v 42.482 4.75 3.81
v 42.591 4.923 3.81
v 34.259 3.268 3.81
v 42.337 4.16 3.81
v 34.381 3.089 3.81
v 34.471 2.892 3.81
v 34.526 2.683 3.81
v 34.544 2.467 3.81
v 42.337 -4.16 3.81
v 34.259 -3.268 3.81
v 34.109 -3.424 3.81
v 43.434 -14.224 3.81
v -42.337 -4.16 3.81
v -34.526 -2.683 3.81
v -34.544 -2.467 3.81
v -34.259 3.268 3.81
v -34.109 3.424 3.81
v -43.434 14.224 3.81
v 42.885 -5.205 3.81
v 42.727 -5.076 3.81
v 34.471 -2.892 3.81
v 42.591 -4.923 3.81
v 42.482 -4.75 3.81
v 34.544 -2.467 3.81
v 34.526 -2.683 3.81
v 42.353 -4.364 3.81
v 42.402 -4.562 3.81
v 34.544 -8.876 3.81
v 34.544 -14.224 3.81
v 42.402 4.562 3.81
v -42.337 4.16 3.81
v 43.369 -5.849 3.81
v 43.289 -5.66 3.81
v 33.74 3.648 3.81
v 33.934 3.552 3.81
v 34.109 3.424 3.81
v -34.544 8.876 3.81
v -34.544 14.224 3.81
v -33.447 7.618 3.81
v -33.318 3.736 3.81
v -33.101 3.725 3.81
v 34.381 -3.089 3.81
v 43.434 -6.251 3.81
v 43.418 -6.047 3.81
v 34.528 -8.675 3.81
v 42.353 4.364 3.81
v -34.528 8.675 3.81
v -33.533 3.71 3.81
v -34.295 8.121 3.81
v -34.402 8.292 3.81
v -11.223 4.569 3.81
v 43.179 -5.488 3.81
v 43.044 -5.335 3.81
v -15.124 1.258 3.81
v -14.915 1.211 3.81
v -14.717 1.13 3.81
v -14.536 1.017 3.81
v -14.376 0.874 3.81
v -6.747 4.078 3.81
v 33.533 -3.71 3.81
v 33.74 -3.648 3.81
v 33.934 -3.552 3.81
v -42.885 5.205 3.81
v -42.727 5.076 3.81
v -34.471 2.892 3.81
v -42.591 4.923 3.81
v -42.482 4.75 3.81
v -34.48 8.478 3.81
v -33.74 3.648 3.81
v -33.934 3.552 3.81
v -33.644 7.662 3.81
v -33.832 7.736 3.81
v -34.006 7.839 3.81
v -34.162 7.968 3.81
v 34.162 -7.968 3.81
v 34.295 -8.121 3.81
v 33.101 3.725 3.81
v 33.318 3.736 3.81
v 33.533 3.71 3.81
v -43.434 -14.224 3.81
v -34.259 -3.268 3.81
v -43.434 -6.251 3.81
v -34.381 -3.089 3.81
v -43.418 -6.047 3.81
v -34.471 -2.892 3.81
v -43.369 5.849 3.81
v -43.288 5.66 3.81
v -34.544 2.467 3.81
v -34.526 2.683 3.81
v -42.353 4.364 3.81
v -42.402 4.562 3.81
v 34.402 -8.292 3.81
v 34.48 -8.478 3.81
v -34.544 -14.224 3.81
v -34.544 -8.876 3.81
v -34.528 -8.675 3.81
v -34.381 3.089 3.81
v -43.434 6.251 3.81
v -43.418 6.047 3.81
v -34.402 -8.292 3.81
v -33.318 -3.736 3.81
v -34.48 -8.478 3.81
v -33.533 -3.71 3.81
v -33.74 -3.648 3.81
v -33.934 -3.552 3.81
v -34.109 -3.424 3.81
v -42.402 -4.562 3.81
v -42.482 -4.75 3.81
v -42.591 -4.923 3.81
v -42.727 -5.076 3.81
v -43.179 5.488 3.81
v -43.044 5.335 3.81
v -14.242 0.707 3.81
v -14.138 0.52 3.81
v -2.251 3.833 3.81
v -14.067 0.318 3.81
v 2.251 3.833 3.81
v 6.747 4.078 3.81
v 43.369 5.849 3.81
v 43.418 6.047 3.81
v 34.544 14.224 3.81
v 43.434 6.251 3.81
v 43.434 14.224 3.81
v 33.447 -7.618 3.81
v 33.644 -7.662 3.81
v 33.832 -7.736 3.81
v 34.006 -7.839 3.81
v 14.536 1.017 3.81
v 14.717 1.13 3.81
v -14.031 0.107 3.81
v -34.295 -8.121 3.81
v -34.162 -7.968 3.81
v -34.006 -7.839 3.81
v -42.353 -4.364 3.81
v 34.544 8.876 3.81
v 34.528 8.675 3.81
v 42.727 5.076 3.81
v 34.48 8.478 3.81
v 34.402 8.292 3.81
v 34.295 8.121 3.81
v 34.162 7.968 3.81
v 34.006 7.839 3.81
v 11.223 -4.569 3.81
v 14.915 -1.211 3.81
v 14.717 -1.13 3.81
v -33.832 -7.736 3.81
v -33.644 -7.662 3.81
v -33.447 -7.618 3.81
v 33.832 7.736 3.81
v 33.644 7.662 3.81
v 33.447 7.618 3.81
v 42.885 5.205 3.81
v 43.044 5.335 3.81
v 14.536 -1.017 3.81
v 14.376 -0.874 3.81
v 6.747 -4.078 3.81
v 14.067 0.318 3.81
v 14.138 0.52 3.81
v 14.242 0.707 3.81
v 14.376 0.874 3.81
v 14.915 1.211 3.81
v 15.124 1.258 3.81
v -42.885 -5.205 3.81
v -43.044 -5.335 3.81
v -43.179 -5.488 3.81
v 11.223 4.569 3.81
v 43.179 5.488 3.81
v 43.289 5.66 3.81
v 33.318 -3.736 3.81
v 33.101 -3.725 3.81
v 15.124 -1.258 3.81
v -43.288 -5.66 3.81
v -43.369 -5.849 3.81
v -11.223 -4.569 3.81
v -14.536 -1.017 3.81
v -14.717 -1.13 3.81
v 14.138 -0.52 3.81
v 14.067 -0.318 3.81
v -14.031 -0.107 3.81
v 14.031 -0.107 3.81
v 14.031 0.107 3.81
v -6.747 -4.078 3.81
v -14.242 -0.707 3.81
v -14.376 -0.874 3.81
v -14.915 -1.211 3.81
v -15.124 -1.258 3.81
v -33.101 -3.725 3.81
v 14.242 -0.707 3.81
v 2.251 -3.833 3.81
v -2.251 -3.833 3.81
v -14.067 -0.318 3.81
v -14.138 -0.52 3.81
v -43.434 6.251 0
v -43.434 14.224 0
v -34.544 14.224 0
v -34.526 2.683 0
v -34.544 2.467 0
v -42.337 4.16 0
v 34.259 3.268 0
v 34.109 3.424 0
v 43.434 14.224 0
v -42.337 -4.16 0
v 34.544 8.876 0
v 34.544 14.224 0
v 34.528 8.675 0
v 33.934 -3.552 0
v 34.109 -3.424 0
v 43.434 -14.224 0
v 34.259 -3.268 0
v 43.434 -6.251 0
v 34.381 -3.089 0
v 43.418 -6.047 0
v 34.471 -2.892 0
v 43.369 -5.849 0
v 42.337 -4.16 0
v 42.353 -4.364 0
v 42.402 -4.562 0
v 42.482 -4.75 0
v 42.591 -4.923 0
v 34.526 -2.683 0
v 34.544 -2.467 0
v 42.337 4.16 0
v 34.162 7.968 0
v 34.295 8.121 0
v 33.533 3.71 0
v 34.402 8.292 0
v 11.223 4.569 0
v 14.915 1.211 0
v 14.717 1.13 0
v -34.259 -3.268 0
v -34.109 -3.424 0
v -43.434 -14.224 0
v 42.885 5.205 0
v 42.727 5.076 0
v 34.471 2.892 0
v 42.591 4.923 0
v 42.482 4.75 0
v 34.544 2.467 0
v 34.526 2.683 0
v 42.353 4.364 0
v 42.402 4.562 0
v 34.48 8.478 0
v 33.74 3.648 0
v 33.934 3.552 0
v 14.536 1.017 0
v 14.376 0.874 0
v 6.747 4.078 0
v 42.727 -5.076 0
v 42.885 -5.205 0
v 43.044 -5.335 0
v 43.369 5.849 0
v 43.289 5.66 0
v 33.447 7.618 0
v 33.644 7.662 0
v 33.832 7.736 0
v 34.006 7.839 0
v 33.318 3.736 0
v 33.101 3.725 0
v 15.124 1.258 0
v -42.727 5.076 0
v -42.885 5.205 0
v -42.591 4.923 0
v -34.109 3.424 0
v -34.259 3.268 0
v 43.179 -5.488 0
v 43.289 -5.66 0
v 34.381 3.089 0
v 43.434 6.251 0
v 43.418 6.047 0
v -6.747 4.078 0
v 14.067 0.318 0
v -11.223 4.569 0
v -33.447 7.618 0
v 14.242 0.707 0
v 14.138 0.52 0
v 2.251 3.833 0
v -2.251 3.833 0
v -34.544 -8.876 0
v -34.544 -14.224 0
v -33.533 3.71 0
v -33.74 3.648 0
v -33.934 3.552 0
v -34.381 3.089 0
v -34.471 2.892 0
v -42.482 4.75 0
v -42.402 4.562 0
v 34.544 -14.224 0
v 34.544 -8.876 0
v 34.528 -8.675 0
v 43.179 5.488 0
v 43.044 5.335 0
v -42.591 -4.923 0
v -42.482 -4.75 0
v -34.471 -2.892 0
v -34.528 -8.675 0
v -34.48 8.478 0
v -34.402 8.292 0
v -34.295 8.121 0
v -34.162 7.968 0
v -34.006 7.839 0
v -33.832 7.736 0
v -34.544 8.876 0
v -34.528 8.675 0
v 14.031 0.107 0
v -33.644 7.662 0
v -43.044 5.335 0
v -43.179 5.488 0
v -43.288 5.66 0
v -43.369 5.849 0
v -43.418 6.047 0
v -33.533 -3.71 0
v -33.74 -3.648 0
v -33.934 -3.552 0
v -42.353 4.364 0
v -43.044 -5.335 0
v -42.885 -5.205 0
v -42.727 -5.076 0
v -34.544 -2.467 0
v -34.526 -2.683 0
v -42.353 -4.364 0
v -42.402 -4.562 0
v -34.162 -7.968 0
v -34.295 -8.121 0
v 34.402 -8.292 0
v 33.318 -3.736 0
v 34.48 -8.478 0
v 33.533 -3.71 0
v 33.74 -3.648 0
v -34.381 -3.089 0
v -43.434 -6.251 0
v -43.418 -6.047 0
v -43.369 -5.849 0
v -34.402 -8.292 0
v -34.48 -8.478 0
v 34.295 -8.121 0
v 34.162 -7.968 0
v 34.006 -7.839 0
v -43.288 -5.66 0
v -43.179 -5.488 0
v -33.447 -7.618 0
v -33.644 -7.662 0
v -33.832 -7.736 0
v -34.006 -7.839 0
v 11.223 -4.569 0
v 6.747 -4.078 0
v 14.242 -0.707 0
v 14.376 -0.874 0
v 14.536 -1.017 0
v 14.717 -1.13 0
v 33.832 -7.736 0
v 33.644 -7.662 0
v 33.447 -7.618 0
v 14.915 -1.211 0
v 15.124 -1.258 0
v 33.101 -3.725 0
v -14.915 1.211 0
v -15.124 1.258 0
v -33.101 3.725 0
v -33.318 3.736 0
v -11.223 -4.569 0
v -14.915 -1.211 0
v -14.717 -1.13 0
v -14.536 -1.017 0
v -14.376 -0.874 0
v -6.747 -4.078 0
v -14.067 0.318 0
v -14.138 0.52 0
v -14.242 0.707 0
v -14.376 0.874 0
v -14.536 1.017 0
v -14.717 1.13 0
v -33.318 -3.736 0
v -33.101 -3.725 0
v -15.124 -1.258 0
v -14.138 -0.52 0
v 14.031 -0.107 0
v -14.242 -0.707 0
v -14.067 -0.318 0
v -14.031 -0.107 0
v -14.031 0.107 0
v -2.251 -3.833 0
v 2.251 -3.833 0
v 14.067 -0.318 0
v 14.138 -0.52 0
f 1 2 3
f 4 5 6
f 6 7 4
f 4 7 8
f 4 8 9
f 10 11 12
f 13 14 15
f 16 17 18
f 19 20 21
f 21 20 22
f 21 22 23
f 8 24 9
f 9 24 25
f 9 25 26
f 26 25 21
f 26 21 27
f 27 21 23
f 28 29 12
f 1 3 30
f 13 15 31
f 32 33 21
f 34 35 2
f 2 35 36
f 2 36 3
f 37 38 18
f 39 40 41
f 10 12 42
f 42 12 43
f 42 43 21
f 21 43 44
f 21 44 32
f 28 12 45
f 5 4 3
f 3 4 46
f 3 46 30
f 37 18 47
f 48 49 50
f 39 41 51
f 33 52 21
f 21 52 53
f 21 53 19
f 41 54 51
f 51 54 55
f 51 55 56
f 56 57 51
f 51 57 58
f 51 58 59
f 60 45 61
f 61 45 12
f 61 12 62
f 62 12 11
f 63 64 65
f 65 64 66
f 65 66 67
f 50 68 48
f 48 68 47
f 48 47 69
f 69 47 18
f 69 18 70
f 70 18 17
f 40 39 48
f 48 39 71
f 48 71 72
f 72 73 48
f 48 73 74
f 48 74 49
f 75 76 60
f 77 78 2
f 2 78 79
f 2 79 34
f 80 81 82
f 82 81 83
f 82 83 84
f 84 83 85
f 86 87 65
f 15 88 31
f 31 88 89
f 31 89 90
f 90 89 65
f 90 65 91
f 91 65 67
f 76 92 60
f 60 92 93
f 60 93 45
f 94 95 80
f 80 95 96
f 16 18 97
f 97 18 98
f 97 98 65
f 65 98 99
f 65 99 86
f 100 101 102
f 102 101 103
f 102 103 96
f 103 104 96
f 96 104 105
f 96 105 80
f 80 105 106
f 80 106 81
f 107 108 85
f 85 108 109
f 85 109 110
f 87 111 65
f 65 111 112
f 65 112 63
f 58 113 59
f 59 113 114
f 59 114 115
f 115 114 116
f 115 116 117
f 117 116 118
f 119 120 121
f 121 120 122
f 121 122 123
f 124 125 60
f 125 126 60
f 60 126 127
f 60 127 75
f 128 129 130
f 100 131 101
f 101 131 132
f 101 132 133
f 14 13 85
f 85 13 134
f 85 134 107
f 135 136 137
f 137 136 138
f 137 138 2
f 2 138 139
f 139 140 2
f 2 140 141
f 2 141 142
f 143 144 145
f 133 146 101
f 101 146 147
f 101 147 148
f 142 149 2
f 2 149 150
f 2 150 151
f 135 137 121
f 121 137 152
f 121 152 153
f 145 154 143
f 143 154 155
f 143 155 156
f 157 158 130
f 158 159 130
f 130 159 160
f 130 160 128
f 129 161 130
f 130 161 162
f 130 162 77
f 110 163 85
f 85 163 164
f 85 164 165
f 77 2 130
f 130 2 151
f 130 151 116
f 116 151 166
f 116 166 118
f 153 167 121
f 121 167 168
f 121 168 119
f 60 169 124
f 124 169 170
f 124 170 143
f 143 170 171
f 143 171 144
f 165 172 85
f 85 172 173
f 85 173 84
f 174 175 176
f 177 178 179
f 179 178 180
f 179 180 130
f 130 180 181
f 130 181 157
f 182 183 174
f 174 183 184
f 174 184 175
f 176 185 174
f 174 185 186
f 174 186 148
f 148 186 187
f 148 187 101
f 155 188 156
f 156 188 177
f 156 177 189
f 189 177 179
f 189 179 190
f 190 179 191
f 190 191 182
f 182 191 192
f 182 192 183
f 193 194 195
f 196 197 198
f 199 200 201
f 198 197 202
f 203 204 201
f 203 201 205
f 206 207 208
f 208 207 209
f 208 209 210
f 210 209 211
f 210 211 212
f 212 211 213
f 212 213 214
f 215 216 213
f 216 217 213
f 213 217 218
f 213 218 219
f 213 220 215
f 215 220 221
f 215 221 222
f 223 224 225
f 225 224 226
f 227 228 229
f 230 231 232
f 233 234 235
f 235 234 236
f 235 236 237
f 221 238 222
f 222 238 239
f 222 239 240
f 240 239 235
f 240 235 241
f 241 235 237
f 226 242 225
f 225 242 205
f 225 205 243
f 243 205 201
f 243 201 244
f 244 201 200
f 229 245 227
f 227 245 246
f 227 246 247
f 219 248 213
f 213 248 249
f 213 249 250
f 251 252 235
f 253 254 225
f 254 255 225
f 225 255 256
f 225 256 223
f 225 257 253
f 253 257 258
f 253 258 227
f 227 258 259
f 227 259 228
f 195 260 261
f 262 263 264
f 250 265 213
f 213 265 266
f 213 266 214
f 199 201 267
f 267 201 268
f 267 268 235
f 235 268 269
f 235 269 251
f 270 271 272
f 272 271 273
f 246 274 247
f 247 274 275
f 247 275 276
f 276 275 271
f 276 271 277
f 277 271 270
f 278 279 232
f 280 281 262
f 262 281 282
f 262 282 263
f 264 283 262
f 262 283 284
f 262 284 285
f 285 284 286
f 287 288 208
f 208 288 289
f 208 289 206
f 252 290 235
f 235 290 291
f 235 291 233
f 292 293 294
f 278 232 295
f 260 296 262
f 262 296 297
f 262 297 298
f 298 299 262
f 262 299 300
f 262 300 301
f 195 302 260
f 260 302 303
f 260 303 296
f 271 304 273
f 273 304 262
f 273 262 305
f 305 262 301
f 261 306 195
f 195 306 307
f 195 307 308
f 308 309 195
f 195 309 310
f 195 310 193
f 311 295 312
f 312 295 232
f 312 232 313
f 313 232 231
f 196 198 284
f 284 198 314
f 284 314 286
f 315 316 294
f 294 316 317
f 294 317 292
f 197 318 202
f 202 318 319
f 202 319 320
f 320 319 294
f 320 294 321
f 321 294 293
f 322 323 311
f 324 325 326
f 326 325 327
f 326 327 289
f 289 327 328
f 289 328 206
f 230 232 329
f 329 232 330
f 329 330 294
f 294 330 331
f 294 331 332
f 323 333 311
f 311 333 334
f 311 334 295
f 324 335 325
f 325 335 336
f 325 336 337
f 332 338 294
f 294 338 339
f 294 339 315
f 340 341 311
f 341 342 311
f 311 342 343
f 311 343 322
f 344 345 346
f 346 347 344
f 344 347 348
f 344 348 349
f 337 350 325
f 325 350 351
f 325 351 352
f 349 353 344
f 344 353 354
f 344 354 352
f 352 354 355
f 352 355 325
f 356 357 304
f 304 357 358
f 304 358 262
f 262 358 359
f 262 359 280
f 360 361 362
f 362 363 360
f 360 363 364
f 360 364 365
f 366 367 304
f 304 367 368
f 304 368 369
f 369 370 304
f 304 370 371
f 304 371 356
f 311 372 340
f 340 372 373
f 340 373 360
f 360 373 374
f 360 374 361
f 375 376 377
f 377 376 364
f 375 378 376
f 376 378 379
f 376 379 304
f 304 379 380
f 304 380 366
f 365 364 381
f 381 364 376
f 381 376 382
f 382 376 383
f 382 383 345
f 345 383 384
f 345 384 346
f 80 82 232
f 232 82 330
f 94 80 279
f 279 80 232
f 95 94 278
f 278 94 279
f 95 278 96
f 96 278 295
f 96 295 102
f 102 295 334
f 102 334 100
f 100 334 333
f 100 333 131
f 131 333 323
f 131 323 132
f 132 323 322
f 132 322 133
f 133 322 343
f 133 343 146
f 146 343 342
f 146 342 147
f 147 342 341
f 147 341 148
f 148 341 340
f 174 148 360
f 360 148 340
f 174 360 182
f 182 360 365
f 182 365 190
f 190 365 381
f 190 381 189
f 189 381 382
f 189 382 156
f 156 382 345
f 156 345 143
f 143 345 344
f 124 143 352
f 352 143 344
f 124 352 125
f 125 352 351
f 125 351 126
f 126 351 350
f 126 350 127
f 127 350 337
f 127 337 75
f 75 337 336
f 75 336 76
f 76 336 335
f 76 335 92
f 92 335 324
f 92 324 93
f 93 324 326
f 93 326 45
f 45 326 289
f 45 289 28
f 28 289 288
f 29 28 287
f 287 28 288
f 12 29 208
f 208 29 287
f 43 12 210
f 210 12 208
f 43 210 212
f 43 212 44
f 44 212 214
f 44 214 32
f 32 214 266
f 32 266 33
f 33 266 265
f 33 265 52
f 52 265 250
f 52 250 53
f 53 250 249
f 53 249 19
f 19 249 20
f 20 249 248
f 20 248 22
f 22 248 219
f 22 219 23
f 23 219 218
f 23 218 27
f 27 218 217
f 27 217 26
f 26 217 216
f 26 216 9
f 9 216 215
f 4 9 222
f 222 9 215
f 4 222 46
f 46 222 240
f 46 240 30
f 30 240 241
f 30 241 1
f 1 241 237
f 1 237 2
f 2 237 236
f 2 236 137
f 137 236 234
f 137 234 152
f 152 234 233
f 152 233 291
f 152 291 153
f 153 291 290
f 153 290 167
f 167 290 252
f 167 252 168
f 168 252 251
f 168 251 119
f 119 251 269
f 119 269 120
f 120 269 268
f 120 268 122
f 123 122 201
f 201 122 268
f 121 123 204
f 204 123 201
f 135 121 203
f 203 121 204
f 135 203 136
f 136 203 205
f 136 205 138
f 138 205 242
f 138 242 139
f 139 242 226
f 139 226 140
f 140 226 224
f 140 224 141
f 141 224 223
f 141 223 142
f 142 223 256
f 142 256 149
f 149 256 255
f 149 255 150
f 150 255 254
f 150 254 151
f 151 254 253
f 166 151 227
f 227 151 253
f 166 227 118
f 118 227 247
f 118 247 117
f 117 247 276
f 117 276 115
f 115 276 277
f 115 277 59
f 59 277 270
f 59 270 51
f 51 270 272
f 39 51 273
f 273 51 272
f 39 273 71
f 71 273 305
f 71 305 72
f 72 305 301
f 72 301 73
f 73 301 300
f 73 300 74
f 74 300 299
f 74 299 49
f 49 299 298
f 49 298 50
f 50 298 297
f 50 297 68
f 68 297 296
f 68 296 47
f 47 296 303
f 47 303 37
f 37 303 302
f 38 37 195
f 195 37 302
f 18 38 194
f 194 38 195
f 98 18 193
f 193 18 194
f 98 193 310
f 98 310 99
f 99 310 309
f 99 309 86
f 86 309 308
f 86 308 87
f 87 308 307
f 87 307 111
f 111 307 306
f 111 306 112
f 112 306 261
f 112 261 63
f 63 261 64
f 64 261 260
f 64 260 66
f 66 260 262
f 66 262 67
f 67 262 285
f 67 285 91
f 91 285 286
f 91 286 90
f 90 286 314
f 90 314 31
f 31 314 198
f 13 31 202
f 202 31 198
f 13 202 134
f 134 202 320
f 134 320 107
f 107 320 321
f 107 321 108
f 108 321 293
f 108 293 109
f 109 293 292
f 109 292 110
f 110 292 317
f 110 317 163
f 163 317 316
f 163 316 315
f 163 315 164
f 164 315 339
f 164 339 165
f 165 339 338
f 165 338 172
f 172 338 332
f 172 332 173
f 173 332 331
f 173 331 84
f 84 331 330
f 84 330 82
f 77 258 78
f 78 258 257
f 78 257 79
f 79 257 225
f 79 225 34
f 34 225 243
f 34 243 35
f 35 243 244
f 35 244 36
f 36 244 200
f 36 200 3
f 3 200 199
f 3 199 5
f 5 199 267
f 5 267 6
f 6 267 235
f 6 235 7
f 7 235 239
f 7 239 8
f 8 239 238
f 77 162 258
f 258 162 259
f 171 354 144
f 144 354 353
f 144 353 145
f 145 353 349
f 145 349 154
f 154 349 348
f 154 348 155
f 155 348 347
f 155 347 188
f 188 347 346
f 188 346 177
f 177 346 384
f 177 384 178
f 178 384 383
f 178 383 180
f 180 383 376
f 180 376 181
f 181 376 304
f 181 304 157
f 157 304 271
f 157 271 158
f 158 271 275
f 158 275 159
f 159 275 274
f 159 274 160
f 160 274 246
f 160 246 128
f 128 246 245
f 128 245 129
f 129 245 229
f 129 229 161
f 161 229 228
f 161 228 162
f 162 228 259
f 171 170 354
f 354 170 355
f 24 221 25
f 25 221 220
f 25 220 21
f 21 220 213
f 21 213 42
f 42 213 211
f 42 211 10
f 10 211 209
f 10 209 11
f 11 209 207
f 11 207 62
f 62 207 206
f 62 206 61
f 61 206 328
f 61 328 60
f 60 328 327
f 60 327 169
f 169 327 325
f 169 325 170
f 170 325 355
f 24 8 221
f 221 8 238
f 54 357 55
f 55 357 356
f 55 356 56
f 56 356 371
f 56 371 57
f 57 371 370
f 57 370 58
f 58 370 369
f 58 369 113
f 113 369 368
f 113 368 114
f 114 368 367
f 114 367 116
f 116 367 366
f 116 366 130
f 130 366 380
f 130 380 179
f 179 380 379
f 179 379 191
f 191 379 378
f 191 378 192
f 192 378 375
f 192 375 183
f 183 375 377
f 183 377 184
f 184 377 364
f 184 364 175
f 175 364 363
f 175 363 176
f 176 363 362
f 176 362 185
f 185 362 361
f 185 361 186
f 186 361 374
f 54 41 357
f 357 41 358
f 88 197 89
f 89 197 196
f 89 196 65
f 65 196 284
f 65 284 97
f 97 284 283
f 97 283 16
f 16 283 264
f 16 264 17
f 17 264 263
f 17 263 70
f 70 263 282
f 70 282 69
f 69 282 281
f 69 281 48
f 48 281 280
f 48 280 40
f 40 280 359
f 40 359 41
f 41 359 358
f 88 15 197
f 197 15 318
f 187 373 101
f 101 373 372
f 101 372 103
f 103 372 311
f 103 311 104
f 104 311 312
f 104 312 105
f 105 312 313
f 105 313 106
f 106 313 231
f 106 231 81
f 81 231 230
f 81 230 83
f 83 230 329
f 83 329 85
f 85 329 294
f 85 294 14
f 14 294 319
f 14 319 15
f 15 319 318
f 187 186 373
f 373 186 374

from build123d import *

# Parameters (mm, degrees)
BOSS_EXTRUDE1_DEPTH = 3.81


with BuildPart() as part:
    # Sketch1 → Boss-Extrude1 (new body)
    with BuildSketch(Plane.XY):
        with BuildLine():
            Line((-43.434, -9.779), (-43.434, -14.224))
            Line((-43.434, -14.224), (-34.544, -14.224))
            Line((-34.544, -14.224), (-34.544, -9.779))
            Line((-34.544, -9.779), (-34.544, -8.876475723))
            ThreePointArc((-34.544, -8.876475723), (-34.231125677, -8.041724001), (-33.446660728, -7.618267365))
            Line((-33.446660728, -7.618267365), (-11.222947321, -4.568563784))
            ThreePointArc((-11.222947321, -4.568563784), (0, -3.802107076), (11.222947321, -4.568563784))
            Line((11.222947321, -4.568563784), (33.446660728, -7.618267365))
            ThreePointArc((33.446660728, -7.618267365), (34.231125677, -8.041724001), (34.544, -8.876475723))
            Line((34.544, -8.876475723), (34.544, -9.779))
            Line((34.544, -9.779), (34.544, -14.224))
            Line((34.544, -14.224), (43.434, -14.224))
            Line((43.434, -14.224), (43.434, -9.779))
            Line((43.434, -9.779), (43.434, -6.250721328))
            ThreePointArc((43.434, -6.250721328), (43.288497568, -5.660462724), (42.885330364, -5.205454612))
            ThreePointArc((42.885330364, -5.205454612), (42.48216316, -4.7504465), (42.336660728, -4.160187897))
            Line((42.336660728, -4.160187897), (42.336660728, 4.160187897))
            ThreePointArc((42.336660728, 4.160187897), (42.48216316, 4.7504465), (42.885330364, 5.205454612))
            ThreePointArc((42.885330364, 5.205454612), (43.288497568, 5.660462724), (43.434, 6.250721328))
            Line((43.434, 6.250721328), (43.434, 9.779))
            Line((43.434, 9.779), (43.434, 14.224))
            Line((43.434, 14.224), (34.544, 14.224))
            Line((34.544, 14.224), (34.544, 9.779))
            Line((34.544, 9.779), (34.544, 8.876475723))
            ThreePointArc((34.544, 8.876475723), (34.231125677, 8.041724001), (33.446660728, 7.618267365))
            Line((33.446660728, 7.618267365), (11.222947321, 4.568563784))
            ThreePointArc((11.222947321, 4.568563784), (0, 3.802107076), (-11.222947321, 4.568563784))
            Line((-11.222947321, 4.568563784), (-33.446660728, 7.618267365))
            ThreePointArc((-33.446660728, 7.618267365), (-34.231125677, 8.041724001), (-34.544, 8.876475723))
            Line((-34.544, 8.876475723), (-34.544, 9.779))
            Line((-34.544, 9.779), (-34.544, 14.224))
            Line((-34.544, 14.224), (-43.434, 14.224))
            Line((-43.434, 14.224), (-43.434, 9.779))
            Line((-43.434, 9.779), (-43.434, 6.250721328))
            ThreePointArc((-43.434, 6.250721328), (-43.288497568, 5.660462724), (-42.885330364, 5.205454612))
            ThreePointArc((-42.885330364, 5.205454612), (-42.48216316, 4.7504465), (-42.336660728, 4.160187897))
            Line((-42.336660728, 4.160187897), (-42.336660728, -4.160187897))
            ThreePointArc((-42.336660728, -4.160187897), (-42.48216316, -4.7504465), (-42.885330364, -5.205454612))
            ThreePointArc((-42.885330364, -5.205454612), (-43.288497568, -5.660462724), (-43.434, -6.250721328))
            Line((-43.434, -6.250721328), (-43.434, -9.779))
        make_face()
        with BuildLine():
            Line((-33.101339272, -3.725173331), (-15.12414212, -1.258208358))
            ThreePointArc((-15.12414212, -1.258208358), (-14.026802848, 0), (-15.12414212, 1.258208358))
            Line((-15.12414212, 1.258208358), (-33.101339272, 3.725173331))
            ThreePointArc((-33.101339272, 3.725173331), (-34.108751722, 3.42409065), (-34.544, 2.466964972))
            Line((-34.544, 2.466964972), (-34.544, -2.466964972))
            ThreePointArc((-34.544, -2.466964972), (-34.108751722, -3.42409065), (-33.101339272, -3.725173331))
        make_face(mode=Mode.SUBTRACT)
        with BuildLine():
            Line((34.544, -2.466964972), (34.544, 2.466964972))
            ThreePointArc((34.544, 2.466964972), (34.108751722, 3.42409065), (33.101339272, 3.725173331))
            Line((33.101339272, 3.725173331), (15.12414212, 1.258208358))
            ThreePointArc((15.12414212, 1.258208358), (14.026802848, 0), (15.12414212, -1.258208358))
            Line((15.12414212, -1.258208358), (33.101339272, -3.725173331))
            ThreePointArc((33.101339272, -3.725173331), (34.108751722, -3.42409065), (34.544, -2.466964972))
        make_face(mode=Mode.SUBTRACT)
    extrude(amount=BOSS_EXTRUDE1_DEPTH)


solid = part.part
